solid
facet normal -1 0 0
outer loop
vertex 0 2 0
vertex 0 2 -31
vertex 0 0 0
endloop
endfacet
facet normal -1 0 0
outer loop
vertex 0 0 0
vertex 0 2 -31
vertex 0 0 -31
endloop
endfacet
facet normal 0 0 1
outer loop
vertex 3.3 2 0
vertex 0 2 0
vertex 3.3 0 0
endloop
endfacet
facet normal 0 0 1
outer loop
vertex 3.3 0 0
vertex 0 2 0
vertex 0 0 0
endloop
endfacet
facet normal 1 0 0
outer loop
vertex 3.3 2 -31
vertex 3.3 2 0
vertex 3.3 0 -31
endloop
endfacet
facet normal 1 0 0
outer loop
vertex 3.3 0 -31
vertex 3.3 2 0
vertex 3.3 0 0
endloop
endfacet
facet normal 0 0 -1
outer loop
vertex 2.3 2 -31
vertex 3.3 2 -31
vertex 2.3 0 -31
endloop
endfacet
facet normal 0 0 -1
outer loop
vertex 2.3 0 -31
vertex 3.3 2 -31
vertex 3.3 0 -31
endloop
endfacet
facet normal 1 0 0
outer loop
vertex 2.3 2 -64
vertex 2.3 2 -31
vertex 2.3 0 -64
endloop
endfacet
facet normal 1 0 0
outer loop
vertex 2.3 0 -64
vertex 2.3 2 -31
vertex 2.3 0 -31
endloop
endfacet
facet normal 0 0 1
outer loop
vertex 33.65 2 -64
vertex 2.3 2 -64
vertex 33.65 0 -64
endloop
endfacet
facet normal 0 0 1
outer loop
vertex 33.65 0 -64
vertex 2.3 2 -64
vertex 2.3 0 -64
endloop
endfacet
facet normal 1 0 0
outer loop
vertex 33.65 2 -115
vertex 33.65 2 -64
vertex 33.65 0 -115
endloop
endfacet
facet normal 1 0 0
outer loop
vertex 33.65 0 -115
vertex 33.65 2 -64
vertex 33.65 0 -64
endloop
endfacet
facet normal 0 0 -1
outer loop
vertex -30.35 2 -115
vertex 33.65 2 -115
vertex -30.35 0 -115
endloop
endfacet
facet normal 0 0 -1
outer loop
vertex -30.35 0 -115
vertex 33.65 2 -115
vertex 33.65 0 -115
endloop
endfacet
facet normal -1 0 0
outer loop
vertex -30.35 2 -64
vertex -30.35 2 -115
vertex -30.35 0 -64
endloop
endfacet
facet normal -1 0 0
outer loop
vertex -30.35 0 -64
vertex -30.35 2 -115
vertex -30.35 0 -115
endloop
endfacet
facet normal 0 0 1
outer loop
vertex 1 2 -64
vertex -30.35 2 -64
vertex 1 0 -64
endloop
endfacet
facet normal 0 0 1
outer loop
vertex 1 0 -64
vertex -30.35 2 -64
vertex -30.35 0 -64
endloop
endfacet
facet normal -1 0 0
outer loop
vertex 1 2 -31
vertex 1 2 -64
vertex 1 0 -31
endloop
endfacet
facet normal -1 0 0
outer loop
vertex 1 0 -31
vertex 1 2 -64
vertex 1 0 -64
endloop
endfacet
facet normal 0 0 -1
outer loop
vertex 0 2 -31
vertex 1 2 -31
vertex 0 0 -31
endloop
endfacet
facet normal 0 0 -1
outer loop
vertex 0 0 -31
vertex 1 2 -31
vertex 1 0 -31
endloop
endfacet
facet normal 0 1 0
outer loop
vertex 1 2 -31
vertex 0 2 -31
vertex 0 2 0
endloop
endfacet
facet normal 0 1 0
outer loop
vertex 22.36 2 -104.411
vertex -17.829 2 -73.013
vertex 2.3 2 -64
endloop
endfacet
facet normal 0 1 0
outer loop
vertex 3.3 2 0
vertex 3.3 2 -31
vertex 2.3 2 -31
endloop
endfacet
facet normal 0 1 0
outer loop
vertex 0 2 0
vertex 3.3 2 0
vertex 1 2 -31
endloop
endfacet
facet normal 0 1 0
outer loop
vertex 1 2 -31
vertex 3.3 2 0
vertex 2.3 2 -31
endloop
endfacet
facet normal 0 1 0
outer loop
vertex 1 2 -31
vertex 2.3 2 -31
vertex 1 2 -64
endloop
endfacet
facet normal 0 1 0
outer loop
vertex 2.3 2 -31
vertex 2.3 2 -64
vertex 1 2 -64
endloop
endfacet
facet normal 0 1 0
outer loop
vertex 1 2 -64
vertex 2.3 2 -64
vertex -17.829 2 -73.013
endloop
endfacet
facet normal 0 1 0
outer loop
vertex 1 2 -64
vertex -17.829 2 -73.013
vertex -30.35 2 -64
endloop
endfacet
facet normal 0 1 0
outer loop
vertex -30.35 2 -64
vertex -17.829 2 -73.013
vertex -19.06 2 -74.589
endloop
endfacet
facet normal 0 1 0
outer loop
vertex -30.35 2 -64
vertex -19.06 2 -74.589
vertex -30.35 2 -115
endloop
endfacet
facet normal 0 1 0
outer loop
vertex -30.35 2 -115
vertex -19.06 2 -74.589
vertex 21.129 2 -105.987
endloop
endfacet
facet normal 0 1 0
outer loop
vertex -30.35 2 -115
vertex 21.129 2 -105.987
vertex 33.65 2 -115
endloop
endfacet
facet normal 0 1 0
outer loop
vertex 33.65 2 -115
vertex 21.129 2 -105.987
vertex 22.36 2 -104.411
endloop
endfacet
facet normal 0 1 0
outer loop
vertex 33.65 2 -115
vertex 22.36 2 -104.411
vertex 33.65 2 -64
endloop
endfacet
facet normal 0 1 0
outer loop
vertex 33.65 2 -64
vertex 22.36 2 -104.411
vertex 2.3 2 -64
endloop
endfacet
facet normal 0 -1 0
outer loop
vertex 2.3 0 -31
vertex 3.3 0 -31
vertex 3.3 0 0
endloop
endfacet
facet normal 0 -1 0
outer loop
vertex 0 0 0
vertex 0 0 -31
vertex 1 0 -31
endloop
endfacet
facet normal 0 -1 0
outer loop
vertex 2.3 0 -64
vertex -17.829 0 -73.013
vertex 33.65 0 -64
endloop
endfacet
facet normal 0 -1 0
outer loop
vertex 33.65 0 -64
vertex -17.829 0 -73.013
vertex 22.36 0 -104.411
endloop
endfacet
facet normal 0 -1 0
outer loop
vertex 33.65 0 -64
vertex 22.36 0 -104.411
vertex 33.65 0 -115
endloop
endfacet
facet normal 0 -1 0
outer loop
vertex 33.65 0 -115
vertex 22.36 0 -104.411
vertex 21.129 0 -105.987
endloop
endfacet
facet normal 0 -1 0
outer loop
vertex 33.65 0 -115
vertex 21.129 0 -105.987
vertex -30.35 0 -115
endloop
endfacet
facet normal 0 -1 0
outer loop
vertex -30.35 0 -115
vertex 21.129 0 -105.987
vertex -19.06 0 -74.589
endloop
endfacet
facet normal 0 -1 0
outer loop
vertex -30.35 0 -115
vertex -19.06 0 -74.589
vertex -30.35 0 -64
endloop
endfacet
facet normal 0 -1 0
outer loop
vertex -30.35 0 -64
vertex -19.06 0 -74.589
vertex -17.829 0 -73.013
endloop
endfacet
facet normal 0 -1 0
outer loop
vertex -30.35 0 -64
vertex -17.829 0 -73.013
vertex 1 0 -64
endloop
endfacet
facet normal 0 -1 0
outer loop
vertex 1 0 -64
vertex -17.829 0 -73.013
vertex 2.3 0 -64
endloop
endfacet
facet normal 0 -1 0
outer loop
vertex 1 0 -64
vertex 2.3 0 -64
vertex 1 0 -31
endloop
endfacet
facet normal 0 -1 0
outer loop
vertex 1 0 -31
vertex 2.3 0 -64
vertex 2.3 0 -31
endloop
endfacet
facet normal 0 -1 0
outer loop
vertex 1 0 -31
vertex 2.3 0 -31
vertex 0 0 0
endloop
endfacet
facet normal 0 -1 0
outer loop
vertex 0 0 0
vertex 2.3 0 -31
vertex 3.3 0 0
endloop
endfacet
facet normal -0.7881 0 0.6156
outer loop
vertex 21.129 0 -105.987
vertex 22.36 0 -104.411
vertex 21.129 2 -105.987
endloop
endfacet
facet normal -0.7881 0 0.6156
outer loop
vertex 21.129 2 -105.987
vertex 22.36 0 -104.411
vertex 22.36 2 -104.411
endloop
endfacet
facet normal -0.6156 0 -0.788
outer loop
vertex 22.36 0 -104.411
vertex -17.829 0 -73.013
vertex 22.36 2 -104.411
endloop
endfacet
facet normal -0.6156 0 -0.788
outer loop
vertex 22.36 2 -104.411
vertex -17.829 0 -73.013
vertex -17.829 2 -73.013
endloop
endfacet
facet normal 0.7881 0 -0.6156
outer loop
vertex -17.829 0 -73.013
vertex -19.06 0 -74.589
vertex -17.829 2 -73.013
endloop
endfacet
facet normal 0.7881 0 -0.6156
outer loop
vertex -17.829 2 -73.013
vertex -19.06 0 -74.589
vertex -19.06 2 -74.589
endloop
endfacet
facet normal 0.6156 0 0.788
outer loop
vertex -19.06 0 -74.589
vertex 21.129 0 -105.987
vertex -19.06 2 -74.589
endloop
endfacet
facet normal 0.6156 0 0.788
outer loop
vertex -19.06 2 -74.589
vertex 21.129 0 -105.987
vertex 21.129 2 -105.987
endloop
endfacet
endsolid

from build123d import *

# Parameters (mm, degrees)
BOSS_EXTRUDE1_DEPTH = 2
CUT_EXTRUDE1_DEPTH  = 3


with BuildPart() as part:
    # Sketch1 → Boss-Extrude1 (new body)
    with BuildSketch(Plane(origin=(0, 0, 0), x_dir=(1, 0, 0), z_dir=(0, 1, 0))):
        Polygon((0, 0), (3.3, 0), (3.3, 31), (2.3, 31), (2.3, 64), (33.65, 64), (33.65, 115), (-30.35, 115), (-30.35, 64), (1, 64), (1, 31), (0, 31), align=None)
    extrude(amount=BOSS_EXTRUDE1_DEPTH)

    # Sketch2 → Cut-Extrude1 (cut, through all)
    with BuildSketch(Plane(origin=(0, 2, 0), x_dir=(1, 0, 0), z_dir=(0, 1, 0))):
        Polygon((21.744274217, 105.199367621), (22.359935692, 104.411356867), (-17.828612742, 73.012621626), (-19.059935692, 74.588643133), (21.128612742, 105.987378374), align=None)
    extrude(amount=-CUT_EXTRUDE1_DEPTH, mode=Mode.SUBTRACT)


solid = part.part
